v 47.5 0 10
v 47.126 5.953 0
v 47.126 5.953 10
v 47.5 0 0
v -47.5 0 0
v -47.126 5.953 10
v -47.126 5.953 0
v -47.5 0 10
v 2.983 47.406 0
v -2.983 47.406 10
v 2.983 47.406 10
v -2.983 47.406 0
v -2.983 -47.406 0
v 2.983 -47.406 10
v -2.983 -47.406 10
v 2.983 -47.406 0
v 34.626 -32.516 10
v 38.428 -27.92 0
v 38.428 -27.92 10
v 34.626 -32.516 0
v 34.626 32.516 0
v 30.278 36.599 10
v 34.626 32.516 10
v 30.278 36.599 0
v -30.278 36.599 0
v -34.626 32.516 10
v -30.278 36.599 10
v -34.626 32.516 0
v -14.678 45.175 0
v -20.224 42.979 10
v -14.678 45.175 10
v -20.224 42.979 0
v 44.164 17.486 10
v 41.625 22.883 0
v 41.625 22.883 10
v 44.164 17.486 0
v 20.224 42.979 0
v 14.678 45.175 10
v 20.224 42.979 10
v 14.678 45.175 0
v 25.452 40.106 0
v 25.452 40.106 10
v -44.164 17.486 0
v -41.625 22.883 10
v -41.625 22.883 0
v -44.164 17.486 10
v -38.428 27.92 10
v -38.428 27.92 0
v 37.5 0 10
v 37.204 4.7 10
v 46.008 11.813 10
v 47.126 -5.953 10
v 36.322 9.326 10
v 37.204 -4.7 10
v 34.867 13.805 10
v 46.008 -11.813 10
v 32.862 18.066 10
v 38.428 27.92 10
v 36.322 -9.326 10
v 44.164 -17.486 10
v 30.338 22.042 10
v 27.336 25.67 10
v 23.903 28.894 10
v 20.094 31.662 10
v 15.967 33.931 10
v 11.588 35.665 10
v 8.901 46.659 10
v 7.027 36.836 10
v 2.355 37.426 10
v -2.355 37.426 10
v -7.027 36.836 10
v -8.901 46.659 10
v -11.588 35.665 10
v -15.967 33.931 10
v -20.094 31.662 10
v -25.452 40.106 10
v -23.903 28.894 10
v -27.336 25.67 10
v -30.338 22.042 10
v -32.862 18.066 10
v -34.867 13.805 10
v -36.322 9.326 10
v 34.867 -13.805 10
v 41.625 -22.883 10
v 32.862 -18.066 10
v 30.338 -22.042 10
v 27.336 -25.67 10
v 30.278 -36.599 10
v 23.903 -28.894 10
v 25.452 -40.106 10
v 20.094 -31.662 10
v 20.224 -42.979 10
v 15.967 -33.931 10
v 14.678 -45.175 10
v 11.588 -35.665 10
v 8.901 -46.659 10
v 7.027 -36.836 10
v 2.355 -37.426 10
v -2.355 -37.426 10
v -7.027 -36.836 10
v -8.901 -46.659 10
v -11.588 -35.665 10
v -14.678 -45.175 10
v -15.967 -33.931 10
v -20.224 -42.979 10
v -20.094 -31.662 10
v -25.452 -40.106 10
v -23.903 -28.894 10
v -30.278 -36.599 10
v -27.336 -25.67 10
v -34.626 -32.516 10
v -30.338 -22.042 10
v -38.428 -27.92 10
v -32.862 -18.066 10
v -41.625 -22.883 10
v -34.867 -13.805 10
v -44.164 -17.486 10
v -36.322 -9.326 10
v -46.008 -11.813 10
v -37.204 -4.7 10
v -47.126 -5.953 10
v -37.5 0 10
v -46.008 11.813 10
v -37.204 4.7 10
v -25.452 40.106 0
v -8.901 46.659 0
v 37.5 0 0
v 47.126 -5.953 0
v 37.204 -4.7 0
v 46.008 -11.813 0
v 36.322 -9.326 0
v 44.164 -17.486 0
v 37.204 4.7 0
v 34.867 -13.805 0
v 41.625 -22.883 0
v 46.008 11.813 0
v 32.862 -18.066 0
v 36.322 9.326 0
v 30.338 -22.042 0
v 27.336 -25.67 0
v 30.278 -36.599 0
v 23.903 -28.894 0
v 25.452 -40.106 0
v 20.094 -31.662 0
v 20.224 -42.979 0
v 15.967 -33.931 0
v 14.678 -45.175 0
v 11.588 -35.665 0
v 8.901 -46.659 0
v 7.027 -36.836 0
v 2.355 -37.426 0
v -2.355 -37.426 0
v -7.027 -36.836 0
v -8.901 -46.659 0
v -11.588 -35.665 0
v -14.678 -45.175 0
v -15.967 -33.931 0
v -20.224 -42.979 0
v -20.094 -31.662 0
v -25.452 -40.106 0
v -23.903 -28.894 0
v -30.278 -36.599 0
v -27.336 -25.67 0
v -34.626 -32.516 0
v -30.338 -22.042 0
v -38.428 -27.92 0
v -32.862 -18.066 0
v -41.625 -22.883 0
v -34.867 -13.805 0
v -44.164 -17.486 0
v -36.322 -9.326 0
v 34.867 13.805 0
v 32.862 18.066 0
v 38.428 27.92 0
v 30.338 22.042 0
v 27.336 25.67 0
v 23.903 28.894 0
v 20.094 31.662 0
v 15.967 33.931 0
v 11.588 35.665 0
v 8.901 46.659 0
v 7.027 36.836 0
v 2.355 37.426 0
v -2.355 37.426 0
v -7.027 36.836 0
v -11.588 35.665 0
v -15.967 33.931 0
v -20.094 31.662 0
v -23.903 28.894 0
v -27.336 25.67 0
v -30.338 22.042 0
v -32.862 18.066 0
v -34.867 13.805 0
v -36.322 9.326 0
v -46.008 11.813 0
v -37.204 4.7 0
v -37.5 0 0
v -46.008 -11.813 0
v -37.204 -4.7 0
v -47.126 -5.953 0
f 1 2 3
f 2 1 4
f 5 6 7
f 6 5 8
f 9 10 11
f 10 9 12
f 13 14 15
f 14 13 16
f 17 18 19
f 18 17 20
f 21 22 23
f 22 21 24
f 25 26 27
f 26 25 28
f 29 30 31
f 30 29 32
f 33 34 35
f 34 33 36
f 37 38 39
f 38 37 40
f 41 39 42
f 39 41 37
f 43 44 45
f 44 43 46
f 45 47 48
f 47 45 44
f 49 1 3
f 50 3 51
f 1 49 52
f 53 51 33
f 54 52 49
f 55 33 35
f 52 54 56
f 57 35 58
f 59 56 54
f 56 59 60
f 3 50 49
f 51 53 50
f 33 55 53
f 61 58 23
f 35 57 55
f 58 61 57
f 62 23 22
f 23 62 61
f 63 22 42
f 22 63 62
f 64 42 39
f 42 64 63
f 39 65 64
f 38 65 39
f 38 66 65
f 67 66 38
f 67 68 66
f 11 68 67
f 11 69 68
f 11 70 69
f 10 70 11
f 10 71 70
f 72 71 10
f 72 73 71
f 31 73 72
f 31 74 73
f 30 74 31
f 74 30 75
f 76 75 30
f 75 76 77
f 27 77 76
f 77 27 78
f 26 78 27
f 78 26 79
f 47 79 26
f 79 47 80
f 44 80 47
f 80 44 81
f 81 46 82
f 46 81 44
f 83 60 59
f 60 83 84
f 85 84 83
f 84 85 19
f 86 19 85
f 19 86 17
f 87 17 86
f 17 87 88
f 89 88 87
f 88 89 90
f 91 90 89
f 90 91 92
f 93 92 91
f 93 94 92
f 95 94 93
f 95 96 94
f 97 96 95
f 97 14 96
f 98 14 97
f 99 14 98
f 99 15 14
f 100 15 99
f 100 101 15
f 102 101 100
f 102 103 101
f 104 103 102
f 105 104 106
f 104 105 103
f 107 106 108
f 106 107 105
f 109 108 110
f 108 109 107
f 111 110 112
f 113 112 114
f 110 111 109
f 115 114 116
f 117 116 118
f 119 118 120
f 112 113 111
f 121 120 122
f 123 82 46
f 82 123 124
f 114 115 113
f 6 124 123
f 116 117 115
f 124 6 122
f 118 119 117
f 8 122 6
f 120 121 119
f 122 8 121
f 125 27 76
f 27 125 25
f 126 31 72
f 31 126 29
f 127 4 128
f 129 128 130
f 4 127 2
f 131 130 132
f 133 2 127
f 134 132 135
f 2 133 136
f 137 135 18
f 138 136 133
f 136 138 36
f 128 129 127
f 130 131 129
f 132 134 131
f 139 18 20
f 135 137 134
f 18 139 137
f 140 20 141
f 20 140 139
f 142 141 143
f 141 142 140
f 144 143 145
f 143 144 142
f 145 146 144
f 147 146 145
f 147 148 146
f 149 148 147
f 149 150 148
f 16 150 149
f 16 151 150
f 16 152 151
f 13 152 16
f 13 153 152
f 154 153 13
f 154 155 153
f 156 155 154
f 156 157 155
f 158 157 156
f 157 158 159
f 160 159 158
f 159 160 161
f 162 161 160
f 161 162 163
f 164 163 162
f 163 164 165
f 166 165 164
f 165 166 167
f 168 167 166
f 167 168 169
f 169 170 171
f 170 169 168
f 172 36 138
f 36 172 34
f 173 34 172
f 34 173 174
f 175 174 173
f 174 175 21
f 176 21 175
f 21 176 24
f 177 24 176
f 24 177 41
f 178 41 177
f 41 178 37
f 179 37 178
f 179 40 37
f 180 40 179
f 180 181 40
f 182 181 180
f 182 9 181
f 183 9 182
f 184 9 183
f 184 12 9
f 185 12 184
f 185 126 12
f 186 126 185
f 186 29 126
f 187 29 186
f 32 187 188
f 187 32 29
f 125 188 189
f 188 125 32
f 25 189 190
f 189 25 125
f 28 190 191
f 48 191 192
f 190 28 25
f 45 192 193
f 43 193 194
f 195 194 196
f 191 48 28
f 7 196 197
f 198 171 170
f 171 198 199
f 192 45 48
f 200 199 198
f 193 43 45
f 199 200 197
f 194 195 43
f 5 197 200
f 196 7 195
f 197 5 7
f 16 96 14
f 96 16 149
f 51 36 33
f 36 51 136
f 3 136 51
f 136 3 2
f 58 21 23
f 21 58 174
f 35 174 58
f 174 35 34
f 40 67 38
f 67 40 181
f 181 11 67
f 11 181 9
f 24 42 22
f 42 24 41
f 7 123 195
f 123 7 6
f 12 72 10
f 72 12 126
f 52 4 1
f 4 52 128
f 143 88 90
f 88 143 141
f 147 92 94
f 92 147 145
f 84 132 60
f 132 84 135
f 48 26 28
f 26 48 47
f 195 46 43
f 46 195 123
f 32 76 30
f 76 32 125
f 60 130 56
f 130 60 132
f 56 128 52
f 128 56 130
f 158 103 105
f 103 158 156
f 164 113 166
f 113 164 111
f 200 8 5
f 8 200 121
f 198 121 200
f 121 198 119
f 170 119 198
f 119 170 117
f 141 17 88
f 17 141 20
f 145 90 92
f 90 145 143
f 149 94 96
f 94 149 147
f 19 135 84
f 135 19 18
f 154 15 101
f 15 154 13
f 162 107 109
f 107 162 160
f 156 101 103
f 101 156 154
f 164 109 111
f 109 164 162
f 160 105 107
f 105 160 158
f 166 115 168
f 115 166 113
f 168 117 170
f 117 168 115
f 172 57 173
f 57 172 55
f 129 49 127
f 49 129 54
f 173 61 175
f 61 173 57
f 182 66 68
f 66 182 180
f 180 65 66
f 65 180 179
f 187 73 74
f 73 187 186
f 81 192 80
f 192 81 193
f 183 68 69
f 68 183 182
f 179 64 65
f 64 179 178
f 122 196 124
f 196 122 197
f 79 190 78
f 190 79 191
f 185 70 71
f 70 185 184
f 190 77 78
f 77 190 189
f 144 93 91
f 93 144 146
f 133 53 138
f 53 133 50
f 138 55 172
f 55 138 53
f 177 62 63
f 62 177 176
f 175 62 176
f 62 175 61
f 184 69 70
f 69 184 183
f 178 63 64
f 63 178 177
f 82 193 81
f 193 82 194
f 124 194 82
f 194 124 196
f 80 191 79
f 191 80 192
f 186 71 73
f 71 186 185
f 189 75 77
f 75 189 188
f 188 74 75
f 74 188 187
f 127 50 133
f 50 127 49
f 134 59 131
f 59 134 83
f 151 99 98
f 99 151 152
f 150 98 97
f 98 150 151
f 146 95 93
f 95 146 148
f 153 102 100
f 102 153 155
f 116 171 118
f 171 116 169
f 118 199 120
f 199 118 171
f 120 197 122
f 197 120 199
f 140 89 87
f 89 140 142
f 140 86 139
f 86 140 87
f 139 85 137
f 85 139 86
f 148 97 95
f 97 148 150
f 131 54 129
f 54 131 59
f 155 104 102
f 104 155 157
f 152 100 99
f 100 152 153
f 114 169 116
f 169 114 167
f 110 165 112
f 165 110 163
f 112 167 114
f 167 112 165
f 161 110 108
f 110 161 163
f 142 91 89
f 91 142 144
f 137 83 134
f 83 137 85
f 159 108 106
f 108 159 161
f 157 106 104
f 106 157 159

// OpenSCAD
$fn = 50;


difference() {
	union() {
		translate(v = [0, 0, 0]) {
			rotate(a = [0, 0, 0]) {
				cylinder(h = 10, r = 47.5000000000);
			}
		}
	}
	union() {
		translate(v = [0, 0, 0]) {
			rotate(a = [0, 0, 0]) {
				cylinder(h = 10, r = 37.5000000000);
			}
		}
	}
}
